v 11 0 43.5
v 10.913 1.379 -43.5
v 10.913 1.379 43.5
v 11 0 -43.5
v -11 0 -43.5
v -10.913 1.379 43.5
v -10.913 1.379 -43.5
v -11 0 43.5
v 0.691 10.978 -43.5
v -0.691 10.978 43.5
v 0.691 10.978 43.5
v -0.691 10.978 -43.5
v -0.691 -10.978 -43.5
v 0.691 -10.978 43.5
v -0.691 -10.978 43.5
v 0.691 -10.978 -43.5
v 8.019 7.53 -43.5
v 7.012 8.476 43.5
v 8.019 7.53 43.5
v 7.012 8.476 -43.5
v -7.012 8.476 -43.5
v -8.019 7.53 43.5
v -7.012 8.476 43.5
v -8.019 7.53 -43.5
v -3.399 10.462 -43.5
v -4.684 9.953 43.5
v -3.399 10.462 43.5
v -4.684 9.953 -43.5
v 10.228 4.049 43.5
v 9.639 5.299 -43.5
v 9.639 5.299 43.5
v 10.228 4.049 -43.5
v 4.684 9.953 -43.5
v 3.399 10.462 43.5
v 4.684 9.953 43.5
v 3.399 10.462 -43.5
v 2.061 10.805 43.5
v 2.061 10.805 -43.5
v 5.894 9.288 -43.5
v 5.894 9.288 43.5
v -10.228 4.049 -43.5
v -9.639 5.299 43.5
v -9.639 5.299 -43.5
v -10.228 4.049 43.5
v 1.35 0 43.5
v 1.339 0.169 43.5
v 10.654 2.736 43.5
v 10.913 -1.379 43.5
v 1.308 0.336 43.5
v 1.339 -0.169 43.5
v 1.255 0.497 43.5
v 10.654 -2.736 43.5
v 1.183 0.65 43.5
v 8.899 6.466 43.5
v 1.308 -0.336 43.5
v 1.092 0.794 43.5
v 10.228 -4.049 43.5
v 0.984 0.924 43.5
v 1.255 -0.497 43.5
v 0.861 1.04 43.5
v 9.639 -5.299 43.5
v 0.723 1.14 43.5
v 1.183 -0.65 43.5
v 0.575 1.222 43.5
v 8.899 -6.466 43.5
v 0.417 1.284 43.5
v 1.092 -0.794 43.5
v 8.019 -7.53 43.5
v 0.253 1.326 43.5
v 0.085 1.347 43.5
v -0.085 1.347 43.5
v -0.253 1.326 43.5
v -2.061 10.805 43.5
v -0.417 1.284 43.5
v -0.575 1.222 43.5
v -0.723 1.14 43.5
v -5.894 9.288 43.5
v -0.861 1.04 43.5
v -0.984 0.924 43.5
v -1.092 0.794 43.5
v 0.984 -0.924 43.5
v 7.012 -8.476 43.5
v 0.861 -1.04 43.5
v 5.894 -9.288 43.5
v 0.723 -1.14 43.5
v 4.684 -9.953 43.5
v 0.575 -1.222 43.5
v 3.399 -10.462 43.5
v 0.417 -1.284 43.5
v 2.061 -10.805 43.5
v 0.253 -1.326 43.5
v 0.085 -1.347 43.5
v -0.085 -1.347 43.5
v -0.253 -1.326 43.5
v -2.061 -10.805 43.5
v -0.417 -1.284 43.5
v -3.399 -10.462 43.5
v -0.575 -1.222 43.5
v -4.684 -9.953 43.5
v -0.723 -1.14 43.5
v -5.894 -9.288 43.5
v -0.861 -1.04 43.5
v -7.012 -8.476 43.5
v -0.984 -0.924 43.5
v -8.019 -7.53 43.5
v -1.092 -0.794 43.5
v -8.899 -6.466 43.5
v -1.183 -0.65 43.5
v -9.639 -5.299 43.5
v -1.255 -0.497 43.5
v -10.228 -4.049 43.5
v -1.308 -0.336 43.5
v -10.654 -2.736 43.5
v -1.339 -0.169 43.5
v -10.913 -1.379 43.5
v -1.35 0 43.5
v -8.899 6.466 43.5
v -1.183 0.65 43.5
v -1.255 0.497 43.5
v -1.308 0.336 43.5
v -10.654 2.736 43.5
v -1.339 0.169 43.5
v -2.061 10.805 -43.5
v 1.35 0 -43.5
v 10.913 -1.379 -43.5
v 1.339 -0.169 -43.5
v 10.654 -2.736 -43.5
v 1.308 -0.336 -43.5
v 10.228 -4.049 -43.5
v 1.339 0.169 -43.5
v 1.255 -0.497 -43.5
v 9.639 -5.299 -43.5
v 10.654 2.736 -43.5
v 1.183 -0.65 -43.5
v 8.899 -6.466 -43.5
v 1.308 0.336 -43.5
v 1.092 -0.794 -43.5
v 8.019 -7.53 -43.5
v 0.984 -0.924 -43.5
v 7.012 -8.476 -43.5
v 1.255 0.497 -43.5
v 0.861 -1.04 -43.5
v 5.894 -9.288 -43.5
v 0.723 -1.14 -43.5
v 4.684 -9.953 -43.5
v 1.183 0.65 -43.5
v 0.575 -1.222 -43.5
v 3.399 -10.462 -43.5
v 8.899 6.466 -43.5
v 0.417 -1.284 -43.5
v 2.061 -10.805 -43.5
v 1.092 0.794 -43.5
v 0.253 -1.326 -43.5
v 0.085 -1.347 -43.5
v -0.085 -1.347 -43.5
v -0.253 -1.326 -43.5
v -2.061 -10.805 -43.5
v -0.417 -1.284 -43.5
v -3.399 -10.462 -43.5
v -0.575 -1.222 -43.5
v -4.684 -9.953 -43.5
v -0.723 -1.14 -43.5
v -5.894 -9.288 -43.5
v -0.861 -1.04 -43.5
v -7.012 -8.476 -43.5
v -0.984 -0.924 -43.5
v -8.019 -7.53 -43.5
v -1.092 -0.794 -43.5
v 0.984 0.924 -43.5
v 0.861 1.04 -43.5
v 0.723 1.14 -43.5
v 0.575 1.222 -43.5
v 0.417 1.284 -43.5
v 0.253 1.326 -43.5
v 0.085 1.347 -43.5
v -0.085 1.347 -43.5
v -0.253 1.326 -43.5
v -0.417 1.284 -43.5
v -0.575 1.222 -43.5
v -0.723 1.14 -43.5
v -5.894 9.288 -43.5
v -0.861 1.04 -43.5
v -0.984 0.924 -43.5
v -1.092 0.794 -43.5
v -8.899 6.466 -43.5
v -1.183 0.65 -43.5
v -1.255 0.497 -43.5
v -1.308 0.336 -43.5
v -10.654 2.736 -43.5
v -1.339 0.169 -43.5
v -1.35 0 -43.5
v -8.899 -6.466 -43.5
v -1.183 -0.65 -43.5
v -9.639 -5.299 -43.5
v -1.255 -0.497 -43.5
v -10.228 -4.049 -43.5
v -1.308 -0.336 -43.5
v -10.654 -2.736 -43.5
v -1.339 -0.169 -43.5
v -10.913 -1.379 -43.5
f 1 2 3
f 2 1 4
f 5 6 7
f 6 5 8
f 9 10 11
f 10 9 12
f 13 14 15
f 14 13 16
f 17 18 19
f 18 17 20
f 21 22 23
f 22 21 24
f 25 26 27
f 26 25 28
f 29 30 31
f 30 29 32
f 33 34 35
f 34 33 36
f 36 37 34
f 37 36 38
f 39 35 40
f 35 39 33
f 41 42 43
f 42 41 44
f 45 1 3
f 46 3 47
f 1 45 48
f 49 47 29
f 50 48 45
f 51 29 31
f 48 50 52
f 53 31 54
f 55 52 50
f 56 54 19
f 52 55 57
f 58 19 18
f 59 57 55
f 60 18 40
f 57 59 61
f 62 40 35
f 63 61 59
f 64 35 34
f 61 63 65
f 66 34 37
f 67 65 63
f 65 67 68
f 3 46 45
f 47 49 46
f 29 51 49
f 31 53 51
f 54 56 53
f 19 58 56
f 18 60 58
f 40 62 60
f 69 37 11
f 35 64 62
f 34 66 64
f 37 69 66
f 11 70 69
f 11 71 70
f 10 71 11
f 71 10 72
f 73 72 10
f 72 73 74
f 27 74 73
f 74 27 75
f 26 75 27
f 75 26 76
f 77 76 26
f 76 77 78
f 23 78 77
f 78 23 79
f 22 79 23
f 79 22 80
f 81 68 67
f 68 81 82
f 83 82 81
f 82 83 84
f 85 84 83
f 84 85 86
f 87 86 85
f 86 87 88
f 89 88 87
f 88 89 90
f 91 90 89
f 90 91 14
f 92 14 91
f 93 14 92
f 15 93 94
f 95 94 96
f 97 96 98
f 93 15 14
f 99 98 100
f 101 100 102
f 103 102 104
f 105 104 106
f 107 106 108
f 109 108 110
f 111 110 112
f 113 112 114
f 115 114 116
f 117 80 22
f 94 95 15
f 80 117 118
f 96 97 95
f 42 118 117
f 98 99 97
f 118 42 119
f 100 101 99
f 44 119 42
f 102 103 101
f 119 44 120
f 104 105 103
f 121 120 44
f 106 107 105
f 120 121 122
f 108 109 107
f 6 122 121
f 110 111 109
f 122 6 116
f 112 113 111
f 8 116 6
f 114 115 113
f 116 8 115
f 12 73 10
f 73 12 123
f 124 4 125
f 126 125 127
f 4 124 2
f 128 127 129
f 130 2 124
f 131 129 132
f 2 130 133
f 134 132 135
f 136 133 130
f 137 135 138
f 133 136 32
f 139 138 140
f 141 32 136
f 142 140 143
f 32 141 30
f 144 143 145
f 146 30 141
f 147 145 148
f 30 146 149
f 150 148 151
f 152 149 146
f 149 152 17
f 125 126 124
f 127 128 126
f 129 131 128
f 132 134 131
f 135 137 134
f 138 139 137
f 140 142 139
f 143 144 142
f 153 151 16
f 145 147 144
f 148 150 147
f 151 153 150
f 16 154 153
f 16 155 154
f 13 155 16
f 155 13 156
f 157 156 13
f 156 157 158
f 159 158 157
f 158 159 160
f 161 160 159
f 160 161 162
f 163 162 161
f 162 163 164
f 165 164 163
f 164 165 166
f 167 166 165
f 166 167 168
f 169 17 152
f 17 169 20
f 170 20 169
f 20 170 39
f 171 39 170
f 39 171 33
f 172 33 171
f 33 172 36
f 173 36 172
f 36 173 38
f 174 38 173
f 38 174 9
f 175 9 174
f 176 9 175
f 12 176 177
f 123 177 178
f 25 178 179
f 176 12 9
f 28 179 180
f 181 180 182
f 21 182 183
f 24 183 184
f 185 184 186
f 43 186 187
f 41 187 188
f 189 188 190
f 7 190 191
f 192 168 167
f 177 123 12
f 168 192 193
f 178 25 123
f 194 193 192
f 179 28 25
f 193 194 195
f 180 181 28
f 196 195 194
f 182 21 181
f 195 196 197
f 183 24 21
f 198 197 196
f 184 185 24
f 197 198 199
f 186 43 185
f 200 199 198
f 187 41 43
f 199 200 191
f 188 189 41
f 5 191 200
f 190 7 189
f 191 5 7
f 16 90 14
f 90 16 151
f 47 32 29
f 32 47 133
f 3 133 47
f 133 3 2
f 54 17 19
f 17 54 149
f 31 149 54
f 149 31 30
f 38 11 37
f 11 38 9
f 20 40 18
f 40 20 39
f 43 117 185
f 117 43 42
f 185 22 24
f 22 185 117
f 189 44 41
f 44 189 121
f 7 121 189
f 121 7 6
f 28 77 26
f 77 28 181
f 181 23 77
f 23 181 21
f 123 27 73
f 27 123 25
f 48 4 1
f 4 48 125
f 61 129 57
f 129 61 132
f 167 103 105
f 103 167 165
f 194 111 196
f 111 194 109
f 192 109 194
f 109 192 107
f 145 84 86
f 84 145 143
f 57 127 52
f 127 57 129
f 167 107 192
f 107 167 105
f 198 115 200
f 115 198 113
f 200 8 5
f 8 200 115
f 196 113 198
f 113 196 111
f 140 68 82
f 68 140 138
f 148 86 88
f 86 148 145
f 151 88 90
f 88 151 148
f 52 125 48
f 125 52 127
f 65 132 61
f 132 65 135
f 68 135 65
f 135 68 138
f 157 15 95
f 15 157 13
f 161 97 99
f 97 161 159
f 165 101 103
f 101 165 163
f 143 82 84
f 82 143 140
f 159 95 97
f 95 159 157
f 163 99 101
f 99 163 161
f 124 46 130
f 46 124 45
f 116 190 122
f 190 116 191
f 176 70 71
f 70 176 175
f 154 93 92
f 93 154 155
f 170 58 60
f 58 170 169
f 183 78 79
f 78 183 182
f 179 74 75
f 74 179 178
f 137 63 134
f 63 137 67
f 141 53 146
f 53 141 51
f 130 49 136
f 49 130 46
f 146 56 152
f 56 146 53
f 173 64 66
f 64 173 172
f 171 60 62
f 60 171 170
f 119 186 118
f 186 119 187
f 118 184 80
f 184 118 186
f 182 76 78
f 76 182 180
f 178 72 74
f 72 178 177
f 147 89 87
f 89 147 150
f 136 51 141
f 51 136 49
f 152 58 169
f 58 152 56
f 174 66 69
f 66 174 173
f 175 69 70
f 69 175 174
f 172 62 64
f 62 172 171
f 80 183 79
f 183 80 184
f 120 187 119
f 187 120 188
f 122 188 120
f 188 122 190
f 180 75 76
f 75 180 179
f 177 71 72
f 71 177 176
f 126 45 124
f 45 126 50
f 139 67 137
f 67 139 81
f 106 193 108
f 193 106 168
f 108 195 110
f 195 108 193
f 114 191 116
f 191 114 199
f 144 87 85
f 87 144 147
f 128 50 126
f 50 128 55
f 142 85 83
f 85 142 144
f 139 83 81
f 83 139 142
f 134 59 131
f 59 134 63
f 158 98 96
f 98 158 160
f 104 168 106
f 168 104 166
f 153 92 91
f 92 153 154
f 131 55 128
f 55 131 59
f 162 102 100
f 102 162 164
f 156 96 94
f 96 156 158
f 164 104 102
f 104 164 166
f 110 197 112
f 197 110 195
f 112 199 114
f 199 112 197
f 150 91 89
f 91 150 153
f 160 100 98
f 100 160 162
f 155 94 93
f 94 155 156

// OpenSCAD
$fn = 50;


difference() {
	union() {
		translate(v = [0, 0, -43.5000000000]) {
			cylinder(h = 87, r = 11.0000000000);
		}
	}
	union() {
		translate(v = [0, 0, -100.0000000000]) {
			cylinder(h = 200, r = 1.3500000000);
		}
	}
}
